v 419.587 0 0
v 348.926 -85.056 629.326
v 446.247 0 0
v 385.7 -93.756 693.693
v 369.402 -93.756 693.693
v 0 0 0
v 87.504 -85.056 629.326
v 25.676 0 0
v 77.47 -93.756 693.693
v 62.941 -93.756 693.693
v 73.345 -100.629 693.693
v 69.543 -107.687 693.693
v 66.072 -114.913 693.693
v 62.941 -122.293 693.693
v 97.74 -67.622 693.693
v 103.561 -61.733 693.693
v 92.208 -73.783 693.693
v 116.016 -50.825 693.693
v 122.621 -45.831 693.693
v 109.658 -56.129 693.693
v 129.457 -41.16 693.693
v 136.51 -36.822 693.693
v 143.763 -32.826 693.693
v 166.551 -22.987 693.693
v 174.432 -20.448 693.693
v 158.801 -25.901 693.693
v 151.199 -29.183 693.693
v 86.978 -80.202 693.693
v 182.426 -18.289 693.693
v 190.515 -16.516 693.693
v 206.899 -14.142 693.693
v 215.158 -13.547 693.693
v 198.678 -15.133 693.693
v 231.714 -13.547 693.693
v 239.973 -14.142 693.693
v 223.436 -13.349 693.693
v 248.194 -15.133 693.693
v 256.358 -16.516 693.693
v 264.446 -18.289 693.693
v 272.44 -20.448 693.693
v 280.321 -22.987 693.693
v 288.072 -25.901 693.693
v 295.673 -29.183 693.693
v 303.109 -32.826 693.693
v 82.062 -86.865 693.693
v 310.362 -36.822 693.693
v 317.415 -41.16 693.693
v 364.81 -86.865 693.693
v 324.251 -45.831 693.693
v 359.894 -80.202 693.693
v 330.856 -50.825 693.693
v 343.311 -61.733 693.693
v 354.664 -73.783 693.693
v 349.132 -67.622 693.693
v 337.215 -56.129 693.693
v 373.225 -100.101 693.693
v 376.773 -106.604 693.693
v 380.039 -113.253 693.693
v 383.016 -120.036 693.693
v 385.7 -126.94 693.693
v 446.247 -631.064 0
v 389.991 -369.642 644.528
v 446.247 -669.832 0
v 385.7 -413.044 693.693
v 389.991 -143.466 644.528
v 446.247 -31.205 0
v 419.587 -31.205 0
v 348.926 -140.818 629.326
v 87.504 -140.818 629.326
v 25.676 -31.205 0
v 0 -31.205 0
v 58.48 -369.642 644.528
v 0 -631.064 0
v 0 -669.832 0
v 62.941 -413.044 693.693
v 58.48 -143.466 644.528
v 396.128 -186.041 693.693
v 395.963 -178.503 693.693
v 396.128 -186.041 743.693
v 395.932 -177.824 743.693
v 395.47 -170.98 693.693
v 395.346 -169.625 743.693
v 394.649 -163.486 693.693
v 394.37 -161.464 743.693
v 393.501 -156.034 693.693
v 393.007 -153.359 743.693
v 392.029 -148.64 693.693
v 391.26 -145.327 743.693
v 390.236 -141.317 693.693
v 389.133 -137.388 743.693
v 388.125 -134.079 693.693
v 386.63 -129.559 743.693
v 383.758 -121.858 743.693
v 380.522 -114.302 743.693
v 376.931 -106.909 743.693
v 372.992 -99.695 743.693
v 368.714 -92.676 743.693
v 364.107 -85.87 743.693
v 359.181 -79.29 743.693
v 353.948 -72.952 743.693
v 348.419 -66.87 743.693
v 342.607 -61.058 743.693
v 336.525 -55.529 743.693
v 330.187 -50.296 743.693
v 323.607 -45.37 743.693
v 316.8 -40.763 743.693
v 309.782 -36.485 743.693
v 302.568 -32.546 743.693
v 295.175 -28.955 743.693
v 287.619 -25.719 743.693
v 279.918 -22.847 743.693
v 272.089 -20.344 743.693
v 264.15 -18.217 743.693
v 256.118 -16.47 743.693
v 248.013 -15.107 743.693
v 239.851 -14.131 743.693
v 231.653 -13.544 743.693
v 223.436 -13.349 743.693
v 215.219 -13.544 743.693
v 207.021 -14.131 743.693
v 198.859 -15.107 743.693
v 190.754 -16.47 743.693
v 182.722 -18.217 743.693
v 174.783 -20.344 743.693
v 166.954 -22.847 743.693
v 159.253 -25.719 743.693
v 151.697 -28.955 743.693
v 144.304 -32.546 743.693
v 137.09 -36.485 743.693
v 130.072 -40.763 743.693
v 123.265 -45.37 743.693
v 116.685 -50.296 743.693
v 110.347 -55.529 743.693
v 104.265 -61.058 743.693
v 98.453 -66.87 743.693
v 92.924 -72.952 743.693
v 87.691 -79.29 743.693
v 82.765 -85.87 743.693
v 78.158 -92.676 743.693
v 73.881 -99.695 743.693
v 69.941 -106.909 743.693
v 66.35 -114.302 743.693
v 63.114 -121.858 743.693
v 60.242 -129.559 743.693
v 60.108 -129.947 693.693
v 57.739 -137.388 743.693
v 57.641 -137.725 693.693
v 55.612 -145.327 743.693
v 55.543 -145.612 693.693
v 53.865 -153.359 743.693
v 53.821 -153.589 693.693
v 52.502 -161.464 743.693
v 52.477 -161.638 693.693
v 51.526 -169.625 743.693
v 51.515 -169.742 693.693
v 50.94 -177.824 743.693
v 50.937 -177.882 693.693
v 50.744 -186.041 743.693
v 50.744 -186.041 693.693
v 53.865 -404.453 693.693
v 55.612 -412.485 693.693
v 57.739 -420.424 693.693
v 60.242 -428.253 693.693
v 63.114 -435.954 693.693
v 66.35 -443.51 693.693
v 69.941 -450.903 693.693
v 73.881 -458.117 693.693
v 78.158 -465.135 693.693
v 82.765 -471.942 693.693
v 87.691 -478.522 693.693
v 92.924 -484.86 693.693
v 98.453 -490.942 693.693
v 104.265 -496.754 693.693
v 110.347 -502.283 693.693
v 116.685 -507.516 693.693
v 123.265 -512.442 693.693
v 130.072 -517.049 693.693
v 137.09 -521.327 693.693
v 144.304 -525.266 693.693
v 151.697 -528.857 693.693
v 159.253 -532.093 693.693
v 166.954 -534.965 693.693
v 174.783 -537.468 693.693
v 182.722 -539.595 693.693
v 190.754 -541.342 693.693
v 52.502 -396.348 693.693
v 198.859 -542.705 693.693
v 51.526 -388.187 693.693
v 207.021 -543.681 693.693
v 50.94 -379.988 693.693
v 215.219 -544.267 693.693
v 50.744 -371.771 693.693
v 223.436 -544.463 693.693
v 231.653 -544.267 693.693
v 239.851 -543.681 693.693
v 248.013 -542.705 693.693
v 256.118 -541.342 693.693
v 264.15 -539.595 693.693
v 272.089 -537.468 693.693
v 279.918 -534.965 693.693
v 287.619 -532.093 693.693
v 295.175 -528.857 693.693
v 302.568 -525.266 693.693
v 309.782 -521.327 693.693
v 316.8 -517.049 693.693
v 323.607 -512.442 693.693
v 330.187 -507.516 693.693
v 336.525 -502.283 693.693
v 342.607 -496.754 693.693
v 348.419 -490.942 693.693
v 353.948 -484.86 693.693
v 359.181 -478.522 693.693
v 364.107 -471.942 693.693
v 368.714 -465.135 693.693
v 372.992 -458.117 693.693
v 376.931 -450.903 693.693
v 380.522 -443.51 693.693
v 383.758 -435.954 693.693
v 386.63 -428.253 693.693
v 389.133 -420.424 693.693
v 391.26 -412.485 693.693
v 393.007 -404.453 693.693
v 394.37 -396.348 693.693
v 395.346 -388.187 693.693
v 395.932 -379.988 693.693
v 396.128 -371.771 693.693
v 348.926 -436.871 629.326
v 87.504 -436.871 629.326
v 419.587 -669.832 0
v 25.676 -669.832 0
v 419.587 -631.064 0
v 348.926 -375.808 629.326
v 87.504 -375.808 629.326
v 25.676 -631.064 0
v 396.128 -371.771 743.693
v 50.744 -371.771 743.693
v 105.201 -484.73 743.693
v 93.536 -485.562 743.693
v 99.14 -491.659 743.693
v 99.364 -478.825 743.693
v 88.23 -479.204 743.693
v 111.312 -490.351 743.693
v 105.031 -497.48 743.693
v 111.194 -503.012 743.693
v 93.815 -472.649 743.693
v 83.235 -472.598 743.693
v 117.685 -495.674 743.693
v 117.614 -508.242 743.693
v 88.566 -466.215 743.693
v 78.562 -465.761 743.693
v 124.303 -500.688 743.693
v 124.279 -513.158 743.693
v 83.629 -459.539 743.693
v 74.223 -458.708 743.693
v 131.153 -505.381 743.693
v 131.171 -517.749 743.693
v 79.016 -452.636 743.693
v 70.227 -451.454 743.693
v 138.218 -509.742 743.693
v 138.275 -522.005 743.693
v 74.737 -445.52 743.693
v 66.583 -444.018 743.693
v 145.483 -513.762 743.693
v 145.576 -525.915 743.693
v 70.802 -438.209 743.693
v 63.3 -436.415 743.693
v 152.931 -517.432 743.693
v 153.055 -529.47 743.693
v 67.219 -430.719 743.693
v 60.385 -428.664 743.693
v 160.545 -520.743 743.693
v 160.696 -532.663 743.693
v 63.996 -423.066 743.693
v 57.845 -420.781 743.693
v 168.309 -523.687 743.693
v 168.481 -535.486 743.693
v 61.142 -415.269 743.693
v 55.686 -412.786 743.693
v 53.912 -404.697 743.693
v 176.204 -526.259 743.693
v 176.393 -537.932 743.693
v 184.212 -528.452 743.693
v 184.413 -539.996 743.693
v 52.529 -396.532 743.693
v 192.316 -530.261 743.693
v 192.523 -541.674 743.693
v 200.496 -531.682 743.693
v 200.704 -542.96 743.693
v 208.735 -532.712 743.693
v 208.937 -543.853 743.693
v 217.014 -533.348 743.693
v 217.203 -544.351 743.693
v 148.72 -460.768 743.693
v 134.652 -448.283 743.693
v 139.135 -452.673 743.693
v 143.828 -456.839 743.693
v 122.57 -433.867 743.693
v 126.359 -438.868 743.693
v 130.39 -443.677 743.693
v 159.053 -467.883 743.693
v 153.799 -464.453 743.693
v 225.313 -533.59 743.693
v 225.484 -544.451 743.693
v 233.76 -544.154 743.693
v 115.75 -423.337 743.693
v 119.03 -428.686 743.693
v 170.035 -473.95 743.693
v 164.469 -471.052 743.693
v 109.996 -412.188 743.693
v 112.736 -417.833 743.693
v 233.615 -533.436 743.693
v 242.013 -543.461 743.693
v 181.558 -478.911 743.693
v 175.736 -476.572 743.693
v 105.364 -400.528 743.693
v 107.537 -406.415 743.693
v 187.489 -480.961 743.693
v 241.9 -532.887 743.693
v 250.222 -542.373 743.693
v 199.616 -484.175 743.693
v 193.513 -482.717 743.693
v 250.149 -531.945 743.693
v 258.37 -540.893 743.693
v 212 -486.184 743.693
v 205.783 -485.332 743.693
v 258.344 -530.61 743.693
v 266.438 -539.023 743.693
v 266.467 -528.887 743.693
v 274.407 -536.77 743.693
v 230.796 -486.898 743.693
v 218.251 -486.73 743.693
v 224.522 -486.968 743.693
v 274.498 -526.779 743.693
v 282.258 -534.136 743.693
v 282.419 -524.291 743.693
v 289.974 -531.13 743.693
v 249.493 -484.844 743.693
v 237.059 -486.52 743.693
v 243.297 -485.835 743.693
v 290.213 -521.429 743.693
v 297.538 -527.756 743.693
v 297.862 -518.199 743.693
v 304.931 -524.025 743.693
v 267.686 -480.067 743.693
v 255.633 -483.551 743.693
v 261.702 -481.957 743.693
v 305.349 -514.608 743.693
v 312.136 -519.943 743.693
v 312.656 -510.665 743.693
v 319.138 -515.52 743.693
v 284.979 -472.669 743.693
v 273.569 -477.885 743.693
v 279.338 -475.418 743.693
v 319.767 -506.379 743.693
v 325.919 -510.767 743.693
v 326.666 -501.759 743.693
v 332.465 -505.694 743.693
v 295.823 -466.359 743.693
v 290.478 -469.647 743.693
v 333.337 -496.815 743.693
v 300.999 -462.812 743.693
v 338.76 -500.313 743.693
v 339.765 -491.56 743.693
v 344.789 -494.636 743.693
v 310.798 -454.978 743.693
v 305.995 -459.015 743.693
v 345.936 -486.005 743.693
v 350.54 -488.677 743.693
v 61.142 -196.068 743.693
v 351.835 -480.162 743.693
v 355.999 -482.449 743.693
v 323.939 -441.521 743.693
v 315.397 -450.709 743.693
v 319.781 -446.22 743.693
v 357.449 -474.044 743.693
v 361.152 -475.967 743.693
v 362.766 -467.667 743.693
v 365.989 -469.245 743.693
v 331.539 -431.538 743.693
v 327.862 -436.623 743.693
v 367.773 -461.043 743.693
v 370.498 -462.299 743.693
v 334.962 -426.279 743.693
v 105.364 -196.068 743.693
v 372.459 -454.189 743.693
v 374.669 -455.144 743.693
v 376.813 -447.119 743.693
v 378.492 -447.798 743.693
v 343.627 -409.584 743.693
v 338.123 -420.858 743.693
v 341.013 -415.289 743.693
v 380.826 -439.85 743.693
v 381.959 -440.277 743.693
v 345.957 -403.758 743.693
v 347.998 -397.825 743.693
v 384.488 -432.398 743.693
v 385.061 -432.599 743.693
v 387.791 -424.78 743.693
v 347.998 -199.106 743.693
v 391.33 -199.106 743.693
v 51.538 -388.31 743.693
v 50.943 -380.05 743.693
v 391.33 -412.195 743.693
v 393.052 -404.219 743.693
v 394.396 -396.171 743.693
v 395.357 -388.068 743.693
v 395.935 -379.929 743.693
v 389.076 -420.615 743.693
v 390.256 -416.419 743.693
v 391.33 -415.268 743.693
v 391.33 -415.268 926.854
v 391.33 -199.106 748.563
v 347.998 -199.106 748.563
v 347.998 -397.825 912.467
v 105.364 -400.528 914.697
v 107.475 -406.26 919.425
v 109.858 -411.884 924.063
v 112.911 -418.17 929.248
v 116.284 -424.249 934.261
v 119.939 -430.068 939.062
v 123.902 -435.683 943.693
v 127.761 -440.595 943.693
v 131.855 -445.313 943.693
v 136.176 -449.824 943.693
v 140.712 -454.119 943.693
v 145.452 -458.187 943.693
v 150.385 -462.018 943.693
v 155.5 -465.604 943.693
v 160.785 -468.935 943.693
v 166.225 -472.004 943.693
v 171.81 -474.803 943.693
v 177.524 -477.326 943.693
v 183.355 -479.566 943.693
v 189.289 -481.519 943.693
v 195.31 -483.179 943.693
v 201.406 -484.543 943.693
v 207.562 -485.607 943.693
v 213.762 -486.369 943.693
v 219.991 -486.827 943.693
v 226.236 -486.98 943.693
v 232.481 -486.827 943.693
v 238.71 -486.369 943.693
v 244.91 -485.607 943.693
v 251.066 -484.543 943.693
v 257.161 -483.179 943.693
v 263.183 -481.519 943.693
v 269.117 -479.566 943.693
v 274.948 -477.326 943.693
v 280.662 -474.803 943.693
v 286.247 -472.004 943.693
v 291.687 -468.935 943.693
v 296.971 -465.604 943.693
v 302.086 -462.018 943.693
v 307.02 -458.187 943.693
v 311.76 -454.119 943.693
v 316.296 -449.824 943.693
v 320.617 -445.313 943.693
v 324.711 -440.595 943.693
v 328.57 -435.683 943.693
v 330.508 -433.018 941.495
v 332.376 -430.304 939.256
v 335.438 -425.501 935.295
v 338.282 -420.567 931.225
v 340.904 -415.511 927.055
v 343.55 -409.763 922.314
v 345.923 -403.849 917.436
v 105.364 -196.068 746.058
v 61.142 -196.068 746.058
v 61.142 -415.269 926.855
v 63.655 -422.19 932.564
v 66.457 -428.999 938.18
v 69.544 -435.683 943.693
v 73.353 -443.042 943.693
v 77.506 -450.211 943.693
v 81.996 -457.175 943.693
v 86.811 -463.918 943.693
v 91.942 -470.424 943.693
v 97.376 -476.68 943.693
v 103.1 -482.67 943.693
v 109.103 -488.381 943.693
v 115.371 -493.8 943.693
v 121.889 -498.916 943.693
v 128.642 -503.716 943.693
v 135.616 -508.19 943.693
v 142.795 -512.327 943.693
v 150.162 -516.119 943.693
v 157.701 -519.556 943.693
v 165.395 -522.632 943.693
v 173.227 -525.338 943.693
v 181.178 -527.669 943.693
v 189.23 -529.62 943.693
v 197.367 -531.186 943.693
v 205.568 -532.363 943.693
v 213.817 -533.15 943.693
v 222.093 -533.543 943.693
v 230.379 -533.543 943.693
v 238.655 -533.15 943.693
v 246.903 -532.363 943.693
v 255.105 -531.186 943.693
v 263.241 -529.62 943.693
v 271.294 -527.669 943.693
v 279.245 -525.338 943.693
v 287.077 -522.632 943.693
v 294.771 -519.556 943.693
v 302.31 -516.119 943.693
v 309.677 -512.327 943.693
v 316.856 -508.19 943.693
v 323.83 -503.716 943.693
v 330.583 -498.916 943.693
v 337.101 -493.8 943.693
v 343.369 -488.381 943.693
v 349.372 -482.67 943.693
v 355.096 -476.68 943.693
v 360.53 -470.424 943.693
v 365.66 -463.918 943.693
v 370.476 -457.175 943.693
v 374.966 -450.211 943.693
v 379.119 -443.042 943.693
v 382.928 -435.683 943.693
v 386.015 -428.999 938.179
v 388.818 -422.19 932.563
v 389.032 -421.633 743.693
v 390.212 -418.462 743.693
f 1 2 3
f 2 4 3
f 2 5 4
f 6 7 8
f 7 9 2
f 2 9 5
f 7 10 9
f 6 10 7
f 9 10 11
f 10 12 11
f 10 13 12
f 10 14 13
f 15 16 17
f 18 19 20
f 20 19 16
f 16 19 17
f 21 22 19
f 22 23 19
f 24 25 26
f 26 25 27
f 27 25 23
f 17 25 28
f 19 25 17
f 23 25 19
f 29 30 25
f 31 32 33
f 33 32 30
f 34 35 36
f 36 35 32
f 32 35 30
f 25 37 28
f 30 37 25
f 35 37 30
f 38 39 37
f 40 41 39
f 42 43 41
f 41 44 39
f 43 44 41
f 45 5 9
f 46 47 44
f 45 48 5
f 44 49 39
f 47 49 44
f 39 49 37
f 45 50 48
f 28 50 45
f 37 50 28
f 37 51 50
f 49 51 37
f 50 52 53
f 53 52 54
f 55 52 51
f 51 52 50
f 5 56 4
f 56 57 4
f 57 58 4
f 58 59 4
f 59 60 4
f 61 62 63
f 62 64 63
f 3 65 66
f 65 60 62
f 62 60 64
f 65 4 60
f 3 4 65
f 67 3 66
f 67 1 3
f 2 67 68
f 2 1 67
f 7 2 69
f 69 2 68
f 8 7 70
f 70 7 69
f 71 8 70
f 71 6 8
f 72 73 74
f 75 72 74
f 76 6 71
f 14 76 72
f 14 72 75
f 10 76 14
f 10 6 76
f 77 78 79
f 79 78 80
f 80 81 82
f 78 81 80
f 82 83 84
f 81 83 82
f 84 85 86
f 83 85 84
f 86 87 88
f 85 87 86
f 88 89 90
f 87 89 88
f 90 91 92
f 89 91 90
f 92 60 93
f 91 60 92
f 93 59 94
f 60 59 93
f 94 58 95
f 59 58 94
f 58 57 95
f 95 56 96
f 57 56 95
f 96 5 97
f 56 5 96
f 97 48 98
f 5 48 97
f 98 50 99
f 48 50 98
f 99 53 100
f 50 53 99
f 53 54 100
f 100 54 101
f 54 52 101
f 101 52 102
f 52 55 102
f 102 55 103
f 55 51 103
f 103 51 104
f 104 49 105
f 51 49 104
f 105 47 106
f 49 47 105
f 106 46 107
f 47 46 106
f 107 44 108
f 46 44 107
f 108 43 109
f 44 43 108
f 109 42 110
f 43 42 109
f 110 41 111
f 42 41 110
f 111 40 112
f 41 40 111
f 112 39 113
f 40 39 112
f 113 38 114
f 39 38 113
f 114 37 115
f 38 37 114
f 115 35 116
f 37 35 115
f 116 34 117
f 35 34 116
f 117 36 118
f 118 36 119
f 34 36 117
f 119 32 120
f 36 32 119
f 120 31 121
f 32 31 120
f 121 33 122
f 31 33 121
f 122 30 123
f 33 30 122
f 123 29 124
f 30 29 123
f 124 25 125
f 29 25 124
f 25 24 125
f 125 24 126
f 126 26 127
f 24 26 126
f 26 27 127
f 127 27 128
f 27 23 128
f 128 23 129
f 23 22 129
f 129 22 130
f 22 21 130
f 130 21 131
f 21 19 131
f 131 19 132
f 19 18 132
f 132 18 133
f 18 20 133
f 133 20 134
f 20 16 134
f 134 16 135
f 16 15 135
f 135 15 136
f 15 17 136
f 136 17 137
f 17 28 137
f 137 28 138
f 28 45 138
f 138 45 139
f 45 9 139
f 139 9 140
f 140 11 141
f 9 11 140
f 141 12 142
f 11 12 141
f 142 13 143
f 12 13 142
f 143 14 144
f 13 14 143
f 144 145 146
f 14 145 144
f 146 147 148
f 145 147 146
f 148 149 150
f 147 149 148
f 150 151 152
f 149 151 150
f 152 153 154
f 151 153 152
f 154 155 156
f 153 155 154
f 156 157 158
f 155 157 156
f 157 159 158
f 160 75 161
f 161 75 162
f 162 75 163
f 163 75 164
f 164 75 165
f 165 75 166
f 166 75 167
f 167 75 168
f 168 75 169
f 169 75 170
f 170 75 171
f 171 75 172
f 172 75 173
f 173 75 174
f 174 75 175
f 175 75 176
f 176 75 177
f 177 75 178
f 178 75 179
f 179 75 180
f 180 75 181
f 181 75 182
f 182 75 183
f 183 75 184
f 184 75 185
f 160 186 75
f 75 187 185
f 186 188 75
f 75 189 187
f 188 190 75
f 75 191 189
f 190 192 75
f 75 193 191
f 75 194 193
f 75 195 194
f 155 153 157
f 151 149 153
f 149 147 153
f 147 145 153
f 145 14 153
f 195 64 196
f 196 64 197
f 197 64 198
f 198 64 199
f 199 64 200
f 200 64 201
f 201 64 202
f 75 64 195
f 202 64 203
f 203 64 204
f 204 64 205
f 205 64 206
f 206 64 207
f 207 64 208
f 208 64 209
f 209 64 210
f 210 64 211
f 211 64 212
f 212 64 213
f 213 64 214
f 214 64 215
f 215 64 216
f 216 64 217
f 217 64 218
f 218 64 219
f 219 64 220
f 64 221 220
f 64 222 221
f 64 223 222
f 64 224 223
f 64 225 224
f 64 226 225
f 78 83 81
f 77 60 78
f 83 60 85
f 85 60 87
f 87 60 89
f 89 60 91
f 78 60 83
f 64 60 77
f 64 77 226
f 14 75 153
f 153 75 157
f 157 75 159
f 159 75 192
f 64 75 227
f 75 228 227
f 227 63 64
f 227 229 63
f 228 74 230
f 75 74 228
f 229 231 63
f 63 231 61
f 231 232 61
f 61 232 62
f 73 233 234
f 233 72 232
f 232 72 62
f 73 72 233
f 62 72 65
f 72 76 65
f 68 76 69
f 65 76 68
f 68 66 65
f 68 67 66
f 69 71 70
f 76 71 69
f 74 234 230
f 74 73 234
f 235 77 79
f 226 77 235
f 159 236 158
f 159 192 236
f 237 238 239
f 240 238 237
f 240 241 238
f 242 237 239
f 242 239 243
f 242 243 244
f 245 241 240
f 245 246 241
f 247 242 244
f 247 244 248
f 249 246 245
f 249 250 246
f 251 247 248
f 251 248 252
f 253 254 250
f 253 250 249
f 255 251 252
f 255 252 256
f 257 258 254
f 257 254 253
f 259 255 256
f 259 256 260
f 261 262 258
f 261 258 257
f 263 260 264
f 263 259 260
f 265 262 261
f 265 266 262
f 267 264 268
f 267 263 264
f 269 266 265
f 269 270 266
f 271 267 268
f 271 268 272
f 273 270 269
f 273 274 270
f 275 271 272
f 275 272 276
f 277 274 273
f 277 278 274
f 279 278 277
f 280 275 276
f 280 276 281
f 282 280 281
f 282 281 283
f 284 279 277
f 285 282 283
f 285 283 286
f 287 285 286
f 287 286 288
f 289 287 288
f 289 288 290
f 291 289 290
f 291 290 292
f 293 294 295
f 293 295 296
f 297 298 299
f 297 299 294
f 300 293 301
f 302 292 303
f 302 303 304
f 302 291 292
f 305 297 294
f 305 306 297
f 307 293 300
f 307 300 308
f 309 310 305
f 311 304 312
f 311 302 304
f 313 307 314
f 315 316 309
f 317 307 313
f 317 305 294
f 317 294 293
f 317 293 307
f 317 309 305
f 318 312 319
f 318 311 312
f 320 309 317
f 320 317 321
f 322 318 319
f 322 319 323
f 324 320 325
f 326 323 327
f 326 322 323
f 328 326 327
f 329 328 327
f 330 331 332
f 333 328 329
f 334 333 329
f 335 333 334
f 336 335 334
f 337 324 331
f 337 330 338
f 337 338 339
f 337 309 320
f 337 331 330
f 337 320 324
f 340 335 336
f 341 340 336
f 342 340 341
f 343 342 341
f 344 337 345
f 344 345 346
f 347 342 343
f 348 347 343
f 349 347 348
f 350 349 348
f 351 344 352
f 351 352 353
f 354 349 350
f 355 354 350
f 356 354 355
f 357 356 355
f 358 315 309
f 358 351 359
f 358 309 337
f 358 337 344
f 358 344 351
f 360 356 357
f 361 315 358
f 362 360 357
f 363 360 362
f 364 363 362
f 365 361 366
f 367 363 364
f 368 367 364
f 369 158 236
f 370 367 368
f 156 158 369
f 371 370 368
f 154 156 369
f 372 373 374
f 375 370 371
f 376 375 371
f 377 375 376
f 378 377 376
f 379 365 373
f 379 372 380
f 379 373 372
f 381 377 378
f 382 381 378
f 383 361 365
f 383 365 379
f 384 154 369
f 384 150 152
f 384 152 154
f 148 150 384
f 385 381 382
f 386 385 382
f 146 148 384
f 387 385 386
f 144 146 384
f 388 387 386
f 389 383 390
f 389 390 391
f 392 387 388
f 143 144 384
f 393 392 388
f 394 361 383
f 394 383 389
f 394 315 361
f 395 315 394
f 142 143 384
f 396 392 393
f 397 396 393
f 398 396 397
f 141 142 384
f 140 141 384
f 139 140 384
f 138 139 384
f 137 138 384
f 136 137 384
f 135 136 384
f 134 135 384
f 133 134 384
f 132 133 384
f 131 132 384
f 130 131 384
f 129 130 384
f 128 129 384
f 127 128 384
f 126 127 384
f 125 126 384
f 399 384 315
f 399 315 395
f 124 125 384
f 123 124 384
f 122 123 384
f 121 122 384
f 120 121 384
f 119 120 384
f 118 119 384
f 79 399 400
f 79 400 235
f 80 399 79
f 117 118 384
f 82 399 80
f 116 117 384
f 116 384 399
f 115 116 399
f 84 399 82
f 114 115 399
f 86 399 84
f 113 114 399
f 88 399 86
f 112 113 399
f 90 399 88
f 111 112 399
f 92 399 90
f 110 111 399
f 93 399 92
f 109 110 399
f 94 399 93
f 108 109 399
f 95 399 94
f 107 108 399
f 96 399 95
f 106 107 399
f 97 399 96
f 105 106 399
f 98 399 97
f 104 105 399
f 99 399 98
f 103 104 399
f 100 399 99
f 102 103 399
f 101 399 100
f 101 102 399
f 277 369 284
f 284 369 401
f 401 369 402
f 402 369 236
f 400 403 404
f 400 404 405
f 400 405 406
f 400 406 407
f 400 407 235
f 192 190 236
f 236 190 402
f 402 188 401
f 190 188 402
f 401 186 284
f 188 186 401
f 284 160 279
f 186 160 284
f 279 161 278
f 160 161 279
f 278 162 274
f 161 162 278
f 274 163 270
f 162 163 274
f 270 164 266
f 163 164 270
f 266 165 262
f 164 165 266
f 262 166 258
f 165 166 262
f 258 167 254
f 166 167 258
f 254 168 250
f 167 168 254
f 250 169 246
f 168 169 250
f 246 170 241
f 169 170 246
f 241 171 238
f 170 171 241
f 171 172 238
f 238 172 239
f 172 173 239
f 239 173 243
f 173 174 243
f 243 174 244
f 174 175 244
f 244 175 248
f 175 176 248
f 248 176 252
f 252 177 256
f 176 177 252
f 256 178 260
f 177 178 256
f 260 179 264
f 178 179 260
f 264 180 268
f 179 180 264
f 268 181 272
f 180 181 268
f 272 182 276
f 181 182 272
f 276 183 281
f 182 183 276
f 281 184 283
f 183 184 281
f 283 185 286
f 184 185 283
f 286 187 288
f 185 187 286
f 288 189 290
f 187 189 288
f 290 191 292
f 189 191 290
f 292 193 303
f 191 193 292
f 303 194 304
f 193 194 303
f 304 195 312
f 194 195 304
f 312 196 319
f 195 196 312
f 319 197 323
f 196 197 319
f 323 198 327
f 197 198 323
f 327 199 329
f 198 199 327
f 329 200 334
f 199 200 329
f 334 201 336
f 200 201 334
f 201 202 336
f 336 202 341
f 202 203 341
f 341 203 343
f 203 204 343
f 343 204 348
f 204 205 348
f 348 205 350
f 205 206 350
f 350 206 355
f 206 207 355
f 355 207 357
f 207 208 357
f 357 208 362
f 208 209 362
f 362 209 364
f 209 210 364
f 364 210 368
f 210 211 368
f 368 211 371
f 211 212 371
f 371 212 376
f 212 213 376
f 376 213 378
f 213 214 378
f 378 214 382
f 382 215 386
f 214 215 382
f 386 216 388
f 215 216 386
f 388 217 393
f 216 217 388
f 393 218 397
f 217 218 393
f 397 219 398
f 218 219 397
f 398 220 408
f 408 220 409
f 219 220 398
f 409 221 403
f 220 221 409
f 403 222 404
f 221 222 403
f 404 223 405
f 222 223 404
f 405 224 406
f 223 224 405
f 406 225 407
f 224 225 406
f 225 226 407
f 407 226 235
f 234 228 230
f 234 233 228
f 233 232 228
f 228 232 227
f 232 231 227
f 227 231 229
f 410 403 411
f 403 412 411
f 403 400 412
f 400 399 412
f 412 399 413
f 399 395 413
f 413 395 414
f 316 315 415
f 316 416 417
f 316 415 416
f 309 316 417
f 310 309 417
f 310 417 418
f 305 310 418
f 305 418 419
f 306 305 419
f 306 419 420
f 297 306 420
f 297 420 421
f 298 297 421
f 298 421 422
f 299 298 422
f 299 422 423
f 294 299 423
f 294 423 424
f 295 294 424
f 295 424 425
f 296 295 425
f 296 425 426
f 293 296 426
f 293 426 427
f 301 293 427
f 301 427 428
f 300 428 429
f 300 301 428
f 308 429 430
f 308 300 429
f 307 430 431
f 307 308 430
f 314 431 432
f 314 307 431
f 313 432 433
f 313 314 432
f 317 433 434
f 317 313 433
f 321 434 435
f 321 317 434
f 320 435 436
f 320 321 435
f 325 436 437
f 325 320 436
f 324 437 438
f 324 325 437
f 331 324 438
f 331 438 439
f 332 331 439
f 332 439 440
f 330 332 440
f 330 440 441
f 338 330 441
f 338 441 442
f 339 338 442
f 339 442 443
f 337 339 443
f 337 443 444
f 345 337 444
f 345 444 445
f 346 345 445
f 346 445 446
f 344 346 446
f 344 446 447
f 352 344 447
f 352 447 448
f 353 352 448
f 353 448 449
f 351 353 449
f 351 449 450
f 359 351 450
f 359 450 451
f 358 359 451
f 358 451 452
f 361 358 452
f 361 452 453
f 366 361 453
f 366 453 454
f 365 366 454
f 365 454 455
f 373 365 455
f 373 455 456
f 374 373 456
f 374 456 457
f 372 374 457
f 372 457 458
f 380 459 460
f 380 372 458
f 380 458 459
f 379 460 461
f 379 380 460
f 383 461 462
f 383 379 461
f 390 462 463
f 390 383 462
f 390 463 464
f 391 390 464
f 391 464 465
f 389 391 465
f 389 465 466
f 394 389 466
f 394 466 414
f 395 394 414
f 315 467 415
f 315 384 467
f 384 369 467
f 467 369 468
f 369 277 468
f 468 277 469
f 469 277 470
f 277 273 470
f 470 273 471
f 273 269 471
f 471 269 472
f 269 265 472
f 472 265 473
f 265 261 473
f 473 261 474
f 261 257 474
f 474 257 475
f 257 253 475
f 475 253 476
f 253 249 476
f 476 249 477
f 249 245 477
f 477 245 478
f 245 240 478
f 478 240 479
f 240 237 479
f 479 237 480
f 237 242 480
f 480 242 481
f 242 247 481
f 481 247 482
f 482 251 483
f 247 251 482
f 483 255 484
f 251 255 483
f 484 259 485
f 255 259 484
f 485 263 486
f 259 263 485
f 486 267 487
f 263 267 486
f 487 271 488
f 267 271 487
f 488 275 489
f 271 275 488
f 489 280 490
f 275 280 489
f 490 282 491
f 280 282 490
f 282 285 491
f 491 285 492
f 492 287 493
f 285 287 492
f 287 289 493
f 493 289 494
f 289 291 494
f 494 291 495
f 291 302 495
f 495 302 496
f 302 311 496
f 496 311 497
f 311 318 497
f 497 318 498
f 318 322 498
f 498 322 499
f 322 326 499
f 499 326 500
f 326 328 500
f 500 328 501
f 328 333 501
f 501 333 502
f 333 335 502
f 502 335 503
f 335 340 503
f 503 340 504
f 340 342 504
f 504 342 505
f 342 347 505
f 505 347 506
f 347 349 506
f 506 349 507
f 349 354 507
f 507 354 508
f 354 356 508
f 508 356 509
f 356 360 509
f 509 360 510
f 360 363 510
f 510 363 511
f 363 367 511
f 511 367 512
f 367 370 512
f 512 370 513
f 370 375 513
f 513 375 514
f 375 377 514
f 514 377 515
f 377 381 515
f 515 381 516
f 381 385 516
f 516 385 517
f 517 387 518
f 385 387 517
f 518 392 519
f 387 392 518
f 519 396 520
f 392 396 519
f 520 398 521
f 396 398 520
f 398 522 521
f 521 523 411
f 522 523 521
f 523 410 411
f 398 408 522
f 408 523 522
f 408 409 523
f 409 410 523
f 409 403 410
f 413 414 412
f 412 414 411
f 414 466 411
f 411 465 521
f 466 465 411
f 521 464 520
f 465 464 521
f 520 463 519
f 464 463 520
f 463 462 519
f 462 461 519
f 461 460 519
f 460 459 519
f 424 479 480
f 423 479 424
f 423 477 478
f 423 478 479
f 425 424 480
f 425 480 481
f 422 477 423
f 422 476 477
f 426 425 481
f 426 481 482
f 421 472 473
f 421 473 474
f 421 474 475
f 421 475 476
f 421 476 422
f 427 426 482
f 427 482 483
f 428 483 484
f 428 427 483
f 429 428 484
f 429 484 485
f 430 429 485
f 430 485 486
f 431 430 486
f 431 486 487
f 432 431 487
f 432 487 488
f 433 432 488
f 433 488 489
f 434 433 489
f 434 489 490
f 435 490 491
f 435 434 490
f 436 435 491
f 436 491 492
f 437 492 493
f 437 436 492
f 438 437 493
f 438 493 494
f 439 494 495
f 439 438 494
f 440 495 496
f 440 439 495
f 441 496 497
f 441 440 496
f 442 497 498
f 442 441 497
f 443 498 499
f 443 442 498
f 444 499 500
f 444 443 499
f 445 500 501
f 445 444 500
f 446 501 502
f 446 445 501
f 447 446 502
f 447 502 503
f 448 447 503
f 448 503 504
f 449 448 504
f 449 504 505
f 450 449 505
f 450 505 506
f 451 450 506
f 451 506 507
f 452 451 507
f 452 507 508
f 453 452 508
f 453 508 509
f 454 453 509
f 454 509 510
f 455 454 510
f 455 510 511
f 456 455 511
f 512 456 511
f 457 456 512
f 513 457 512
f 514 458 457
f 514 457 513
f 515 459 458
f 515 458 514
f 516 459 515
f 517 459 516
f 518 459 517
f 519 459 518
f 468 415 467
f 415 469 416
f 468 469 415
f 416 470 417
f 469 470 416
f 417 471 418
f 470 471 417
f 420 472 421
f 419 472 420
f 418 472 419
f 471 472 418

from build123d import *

# Parameters (mm, degrees)
PAD_DEPTH       = 450
POCKET_DEPTH    = 669.832754
POCKET001_DEPTH = 669.832754
PAD001_DEPTH    = 50
PAD002_DEPTH    = 200
POCKET002_DEPTH = 446.248375


with BuildPart() as part:
    # Sketch → Pad (new body)
    with BuildSketch(Plane.YZ):
        Polygon((0, 0), (-93.755817, 693.692905), (-413.044342, 693.692905), (-669.831754, 0), (-631.063619, 0), (-369.641988, 644.527666), (-143.466095, 644.527666), (-31.204716, 0), align=None)
    extrude(amount=PAD_DEPTH)

    # Sketch001 → Pocket (cut, through all)
    with BuildSketch(Plane.XZ):
        Polygon((0, 0), (68.653915, 756.659241), (-58.010685, 756.659241), (-58.010685, 0), align=None)
        Polygon((446.247375, 0), (380.038452, 758.557922), (486.73526, 758.557922), (486.73526, 0), align=None)
    extrude(amount=POCKET_DEPTH, mode=Mode.SUBTRACT)

    # Sketch002 → Pocket001 (cut, through all)
    with BuildSketch(Plane.XZ):
        Polygon((15.741308, -101.116302), (87.504074, 629.326477), (348.92572, 629.326477), (430.940308, -101.116302), align=None)
    extrude(amount=POCKET001_DEPTH, mode=Mode.SUBTRACT)

    # Sketch003 (on Face2 of Pocket001) → Pad001 (join)
    with BuildSketch(Plane(origin=(0, 0, 693.692905), x_dir=(0, -1, 0), z_dir=(0, 0, 1))):
        with BuildLine():
            ThreePointArc((186.040695, 396.127842), (13.348888, 223.436035), (186.040695, 50.744228))
            Line((186.040695, 50.744228), (371.77124, 50.744228))
            ThreePointArc((371.77124, 50.744228), (544.463047, 223.436035), (371.77124, 396.127842))
            Line((186.040695, 396.127842), (371.77124, 396.127842))
        make_face()
    extrude(amount=PAD001_DEPTH)

    # Sketch004 (on Face22 of Pad001) → Pad002 (join)
    with BuildSketch(Plane(origin=(0, 0, 743.692905), x_dir=(0, -1, 0), z_dir=(0, 0, 1))):
        with BuildLine():
            ThreePointArc((415.269303, 61.142208), (533.592428, 226.236558), (415.268147, 391.330079))
            Line((415.268147, 391.330079), (199.105545, 391.330079))
            Line((199.105545, 391.330079), (199.105545, 347.998))
            Line((199.105545, 347.998), (397.824581, 347.998))
            ThreePointArc((400.528442, 105.363647), (486.971795, 227.659194), (397.824581, 347.998))
            Line((400.528442, 105.363647), (196.068253, 105.363647))
            Line((196.068253, 105.363647), (196.068253, 61.142208))
            Line((196.068253, 61.142208), (415.269303, 61.142208))
        make_face()
    extrude(amount=PAD002_DEPTH)

    # Sketch006 → Pocket002 (cut, through all)
    with BuildSketch(Plane.YZ):
        Polygon((-193.693634, 744.098999), (-545.720642, 1034.452026), (-176.155548, 1034.452026), (-176.155548, 744.098999), align=None)
    extrude(amount=POCKET002_DEPTH, mode=Mode.SUBTRACT)


solid = part.part
